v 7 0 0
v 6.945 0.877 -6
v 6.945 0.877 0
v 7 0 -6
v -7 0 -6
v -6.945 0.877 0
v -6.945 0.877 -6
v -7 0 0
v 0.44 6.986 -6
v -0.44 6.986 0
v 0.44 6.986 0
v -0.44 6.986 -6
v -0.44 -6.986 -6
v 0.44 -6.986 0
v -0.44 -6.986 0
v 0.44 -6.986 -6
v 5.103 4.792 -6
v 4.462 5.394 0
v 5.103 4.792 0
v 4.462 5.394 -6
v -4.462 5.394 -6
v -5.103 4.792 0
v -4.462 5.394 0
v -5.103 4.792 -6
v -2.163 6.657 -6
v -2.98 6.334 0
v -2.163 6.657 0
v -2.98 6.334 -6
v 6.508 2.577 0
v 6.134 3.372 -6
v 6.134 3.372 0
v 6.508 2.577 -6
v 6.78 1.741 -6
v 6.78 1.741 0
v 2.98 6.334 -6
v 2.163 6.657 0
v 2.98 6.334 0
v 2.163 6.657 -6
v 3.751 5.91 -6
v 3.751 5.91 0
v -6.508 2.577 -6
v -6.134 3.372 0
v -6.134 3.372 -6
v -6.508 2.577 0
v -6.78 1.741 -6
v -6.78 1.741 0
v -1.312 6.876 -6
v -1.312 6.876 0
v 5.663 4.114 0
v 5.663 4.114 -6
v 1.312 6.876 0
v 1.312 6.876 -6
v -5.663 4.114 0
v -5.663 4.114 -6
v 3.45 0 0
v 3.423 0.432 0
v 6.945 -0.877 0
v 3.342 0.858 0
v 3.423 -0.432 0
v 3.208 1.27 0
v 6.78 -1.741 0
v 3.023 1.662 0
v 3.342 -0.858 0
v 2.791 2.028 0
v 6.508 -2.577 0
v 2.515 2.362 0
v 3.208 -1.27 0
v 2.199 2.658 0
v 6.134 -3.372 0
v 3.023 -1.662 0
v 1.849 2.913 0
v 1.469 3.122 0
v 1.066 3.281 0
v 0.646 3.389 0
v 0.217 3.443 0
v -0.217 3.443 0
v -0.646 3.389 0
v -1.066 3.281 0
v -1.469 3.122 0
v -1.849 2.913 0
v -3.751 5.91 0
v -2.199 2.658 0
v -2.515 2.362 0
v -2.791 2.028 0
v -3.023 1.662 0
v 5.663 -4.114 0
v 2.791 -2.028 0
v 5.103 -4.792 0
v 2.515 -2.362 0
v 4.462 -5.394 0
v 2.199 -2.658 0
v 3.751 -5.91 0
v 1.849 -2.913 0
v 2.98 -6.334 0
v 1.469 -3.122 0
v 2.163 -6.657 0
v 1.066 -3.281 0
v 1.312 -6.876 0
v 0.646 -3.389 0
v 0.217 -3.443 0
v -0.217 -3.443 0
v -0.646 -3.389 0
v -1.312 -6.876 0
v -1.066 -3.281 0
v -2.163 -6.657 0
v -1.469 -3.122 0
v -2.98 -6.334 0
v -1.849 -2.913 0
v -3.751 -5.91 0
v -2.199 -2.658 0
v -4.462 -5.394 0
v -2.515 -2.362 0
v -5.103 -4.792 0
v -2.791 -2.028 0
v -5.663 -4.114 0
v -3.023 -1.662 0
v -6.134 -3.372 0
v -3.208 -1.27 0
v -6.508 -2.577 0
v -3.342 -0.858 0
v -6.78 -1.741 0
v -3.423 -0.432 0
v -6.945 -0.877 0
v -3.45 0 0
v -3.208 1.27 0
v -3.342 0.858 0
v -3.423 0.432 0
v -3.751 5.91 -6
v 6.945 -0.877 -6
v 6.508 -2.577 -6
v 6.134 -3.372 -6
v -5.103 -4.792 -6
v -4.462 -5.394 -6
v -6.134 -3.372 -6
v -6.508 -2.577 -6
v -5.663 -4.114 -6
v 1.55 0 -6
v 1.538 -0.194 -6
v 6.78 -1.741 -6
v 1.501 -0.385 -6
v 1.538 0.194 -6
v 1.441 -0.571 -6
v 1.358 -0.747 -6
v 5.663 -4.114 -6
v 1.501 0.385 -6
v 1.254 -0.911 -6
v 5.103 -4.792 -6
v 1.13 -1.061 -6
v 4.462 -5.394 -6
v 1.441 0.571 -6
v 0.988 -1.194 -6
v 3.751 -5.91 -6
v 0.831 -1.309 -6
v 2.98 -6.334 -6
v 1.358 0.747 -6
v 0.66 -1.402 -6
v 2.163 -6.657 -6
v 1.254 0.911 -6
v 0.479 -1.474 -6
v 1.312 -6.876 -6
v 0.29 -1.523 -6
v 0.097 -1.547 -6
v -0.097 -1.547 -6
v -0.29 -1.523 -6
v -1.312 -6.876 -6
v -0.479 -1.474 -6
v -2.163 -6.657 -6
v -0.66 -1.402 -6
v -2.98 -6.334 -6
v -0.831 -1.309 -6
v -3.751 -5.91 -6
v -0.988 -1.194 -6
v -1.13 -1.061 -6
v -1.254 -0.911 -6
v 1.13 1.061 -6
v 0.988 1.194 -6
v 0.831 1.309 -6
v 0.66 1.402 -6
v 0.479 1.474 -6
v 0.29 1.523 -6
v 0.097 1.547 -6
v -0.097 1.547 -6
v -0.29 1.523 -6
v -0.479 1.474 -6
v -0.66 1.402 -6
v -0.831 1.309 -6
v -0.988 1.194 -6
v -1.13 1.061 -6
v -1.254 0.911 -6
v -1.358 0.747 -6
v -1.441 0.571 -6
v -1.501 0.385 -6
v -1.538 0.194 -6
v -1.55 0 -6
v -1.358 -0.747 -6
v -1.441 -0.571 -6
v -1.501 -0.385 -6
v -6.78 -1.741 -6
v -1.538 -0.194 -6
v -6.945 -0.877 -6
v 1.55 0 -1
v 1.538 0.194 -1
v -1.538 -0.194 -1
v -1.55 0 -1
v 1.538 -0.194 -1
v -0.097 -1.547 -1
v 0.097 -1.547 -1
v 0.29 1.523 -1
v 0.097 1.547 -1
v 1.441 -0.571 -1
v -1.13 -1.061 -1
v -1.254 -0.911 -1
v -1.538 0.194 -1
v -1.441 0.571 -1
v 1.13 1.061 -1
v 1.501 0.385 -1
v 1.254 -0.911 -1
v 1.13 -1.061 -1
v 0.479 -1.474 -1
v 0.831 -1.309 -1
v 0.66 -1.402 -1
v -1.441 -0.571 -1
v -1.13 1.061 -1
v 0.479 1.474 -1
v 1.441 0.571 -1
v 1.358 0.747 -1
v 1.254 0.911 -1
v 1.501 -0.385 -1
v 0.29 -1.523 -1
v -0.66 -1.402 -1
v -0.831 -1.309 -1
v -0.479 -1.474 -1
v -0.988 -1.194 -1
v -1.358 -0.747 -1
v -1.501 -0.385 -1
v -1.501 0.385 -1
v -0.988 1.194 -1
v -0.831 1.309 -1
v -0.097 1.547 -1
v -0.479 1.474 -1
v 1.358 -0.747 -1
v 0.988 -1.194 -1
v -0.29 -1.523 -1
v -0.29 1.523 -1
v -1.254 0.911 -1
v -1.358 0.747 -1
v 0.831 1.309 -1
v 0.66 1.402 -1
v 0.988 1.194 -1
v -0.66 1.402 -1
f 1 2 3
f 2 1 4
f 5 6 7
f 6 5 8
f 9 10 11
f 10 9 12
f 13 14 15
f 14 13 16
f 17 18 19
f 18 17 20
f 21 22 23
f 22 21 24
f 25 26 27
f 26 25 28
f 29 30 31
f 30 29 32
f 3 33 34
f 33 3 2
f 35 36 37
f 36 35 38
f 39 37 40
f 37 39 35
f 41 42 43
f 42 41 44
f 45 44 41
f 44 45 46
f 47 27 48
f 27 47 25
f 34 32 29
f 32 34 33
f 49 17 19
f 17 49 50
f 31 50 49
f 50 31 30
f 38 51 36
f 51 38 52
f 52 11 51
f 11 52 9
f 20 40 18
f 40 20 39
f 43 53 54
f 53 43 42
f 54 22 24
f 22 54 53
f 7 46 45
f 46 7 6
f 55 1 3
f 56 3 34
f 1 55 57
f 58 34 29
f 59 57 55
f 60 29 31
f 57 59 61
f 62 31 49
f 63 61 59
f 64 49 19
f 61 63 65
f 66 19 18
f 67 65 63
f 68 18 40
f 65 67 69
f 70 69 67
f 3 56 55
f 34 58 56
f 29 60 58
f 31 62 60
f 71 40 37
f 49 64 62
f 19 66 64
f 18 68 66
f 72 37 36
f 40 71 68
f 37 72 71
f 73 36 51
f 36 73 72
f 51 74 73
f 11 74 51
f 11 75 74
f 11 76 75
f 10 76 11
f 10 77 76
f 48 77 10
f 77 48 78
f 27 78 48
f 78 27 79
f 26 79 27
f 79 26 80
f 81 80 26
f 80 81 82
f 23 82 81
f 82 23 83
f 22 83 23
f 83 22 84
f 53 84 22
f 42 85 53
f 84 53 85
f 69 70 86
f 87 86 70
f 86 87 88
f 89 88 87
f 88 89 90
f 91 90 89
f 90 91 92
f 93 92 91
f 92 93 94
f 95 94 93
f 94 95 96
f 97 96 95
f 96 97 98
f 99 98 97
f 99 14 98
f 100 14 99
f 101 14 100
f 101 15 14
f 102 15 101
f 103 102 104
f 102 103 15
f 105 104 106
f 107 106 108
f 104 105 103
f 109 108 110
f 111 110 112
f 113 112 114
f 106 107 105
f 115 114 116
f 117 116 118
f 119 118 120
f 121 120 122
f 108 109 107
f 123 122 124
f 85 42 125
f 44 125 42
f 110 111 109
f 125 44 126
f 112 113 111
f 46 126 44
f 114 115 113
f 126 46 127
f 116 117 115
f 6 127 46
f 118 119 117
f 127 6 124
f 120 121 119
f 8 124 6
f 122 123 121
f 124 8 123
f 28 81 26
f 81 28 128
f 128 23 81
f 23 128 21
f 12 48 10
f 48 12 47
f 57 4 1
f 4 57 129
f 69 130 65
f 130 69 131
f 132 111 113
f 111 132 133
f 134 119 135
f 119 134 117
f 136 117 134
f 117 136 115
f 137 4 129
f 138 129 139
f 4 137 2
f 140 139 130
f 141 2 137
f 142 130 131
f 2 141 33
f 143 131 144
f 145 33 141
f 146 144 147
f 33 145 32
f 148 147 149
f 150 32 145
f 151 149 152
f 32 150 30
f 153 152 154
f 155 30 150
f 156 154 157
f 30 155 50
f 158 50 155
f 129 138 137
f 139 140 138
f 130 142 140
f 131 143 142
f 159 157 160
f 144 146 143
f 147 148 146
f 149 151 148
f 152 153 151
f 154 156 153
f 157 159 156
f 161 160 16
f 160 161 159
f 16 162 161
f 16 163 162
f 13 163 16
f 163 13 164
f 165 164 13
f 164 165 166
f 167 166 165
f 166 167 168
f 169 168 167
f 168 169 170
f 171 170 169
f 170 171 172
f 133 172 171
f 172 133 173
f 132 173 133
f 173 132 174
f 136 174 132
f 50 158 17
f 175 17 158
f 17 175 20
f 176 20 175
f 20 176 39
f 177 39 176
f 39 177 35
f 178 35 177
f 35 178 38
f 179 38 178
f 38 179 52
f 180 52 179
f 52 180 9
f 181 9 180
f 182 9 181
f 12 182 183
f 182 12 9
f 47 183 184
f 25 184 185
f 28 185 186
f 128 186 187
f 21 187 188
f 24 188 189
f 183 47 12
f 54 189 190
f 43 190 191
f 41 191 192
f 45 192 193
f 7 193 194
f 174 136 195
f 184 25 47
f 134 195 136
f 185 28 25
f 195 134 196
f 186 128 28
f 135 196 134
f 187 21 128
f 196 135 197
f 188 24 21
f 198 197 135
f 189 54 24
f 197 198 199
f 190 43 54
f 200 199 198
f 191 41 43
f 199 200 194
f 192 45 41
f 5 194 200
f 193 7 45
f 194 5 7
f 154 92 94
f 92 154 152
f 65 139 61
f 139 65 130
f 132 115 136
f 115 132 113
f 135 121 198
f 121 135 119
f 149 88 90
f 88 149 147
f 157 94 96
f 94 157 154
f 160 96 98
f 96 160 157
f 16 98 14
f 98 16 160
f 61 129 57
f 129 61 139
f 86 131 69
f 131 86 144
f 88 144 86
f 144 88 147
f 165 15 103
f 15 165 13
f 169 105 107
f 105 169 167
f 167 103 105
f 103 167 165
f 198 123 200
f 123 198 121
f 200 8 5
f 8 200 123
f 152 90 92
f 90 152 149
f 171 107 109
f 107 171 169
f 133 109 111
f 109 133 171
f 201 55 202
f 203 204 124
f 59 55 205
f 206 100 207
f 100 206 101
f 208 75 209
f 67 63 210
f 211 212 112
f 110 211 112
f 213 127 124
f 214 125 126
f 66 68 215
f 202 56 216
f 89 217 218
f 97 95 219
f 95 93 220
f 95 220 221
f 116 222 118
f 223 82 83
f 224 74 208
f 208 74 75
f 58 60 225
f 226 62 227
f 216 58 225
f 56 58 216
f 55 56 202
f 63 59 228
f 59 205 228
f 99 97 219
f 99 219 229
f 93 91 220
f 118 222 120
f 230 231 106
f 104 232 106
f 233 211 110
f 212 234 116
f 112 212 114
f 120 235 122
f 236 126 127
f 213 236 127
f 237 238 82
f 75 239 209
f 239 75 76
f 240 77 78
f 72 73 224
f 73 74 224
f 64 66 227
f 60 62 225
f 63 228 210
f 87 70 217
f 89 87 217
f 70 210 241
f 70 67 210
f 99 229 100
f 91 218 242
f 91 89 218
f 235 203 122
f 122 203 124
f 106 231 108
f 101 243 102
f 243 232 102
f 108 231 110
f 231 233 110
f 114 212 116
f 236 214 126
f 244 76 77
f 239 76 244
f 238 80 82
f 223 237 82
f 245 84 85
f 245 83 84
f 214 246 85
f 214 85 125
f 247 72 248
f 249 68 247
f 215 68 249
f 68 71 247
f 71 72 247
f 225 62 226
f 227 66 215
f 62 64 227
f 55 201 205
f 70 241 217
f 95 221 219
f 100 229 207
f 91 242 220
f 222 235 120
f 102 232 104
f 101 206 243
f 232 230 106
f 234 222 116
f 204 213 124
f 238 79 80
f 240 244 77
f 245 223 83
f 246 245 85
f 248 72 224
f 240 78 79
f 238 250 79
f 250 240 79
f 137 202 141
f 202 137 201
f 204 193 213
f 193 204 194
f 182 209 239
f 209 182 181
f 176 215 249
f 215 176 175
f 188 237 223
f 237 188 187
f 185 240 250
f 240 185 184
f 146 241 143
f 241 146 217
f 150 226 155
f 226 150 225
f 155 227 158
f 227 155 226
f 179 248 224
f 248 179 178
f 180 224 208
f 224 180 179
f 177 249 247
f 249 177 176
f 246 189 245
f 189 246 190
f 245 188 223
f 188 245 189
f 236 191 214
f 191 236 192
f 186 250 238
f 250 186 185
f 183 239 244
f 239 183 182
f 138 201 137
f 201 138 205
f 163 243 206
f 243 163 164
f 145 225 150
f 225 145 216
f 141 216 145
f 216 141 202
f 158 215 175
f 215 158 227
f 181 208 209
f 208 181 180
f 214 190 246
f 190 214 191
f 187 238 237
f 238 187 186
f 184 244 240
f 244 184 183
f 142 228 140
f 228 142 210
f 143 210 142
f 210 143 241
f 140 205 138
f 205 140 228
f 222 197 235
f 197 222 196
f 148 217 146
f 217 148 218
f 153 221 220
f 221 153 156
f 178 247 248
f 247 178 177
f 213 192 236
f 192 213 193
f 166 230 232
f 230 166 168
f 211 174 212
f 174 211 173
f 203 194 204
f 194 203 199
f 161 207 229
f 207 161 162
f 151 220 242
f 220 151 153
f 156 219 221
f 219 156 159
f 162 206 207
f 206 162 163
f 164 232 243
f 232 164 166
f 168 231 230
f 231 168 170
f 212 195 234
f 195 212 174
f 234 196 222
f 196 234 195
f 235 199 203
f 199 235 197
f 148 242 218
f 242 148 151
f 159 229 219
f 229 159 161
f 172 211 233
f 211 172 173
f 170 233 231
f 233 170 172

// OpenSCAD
$fn = 50;


difference() {
	union() {
		translate(v = [0, 0, -6.0000000000]) {
			cylinder(h = 6, r = 7.0000000000);
		}
		translate(v = [0, 0, -6.0000000000]) {
			cylinder(h = 6, r = 2.8750000000);
		}
	}
	union() {
		translate(v = [0, 0, 0]) {
			rotate(a = [0, 0, 0]) {
				difference() {
					union() {
						translate(v = [0, 0, -6.0000000000]) {
							cylinder(h = 6, r = 1.2500000000);
						}
						translate(v = [0, 0, -1.0000000000]) {
							cylinder(h = 1.0000000000, r1 = 1.5500000000, r2 = 3.4500000000);
						}
						translate(v = [0, 0, -6.0000000000]) {
							cylinder(h = 6, r = 1.5500000000);
						}
						translate(v = [0, 0, -6.0000000000]) {
							cylinder(h = 6, r = 1.2500000000);
						}
					}
					union();
				}
			}
		}
	}
}
